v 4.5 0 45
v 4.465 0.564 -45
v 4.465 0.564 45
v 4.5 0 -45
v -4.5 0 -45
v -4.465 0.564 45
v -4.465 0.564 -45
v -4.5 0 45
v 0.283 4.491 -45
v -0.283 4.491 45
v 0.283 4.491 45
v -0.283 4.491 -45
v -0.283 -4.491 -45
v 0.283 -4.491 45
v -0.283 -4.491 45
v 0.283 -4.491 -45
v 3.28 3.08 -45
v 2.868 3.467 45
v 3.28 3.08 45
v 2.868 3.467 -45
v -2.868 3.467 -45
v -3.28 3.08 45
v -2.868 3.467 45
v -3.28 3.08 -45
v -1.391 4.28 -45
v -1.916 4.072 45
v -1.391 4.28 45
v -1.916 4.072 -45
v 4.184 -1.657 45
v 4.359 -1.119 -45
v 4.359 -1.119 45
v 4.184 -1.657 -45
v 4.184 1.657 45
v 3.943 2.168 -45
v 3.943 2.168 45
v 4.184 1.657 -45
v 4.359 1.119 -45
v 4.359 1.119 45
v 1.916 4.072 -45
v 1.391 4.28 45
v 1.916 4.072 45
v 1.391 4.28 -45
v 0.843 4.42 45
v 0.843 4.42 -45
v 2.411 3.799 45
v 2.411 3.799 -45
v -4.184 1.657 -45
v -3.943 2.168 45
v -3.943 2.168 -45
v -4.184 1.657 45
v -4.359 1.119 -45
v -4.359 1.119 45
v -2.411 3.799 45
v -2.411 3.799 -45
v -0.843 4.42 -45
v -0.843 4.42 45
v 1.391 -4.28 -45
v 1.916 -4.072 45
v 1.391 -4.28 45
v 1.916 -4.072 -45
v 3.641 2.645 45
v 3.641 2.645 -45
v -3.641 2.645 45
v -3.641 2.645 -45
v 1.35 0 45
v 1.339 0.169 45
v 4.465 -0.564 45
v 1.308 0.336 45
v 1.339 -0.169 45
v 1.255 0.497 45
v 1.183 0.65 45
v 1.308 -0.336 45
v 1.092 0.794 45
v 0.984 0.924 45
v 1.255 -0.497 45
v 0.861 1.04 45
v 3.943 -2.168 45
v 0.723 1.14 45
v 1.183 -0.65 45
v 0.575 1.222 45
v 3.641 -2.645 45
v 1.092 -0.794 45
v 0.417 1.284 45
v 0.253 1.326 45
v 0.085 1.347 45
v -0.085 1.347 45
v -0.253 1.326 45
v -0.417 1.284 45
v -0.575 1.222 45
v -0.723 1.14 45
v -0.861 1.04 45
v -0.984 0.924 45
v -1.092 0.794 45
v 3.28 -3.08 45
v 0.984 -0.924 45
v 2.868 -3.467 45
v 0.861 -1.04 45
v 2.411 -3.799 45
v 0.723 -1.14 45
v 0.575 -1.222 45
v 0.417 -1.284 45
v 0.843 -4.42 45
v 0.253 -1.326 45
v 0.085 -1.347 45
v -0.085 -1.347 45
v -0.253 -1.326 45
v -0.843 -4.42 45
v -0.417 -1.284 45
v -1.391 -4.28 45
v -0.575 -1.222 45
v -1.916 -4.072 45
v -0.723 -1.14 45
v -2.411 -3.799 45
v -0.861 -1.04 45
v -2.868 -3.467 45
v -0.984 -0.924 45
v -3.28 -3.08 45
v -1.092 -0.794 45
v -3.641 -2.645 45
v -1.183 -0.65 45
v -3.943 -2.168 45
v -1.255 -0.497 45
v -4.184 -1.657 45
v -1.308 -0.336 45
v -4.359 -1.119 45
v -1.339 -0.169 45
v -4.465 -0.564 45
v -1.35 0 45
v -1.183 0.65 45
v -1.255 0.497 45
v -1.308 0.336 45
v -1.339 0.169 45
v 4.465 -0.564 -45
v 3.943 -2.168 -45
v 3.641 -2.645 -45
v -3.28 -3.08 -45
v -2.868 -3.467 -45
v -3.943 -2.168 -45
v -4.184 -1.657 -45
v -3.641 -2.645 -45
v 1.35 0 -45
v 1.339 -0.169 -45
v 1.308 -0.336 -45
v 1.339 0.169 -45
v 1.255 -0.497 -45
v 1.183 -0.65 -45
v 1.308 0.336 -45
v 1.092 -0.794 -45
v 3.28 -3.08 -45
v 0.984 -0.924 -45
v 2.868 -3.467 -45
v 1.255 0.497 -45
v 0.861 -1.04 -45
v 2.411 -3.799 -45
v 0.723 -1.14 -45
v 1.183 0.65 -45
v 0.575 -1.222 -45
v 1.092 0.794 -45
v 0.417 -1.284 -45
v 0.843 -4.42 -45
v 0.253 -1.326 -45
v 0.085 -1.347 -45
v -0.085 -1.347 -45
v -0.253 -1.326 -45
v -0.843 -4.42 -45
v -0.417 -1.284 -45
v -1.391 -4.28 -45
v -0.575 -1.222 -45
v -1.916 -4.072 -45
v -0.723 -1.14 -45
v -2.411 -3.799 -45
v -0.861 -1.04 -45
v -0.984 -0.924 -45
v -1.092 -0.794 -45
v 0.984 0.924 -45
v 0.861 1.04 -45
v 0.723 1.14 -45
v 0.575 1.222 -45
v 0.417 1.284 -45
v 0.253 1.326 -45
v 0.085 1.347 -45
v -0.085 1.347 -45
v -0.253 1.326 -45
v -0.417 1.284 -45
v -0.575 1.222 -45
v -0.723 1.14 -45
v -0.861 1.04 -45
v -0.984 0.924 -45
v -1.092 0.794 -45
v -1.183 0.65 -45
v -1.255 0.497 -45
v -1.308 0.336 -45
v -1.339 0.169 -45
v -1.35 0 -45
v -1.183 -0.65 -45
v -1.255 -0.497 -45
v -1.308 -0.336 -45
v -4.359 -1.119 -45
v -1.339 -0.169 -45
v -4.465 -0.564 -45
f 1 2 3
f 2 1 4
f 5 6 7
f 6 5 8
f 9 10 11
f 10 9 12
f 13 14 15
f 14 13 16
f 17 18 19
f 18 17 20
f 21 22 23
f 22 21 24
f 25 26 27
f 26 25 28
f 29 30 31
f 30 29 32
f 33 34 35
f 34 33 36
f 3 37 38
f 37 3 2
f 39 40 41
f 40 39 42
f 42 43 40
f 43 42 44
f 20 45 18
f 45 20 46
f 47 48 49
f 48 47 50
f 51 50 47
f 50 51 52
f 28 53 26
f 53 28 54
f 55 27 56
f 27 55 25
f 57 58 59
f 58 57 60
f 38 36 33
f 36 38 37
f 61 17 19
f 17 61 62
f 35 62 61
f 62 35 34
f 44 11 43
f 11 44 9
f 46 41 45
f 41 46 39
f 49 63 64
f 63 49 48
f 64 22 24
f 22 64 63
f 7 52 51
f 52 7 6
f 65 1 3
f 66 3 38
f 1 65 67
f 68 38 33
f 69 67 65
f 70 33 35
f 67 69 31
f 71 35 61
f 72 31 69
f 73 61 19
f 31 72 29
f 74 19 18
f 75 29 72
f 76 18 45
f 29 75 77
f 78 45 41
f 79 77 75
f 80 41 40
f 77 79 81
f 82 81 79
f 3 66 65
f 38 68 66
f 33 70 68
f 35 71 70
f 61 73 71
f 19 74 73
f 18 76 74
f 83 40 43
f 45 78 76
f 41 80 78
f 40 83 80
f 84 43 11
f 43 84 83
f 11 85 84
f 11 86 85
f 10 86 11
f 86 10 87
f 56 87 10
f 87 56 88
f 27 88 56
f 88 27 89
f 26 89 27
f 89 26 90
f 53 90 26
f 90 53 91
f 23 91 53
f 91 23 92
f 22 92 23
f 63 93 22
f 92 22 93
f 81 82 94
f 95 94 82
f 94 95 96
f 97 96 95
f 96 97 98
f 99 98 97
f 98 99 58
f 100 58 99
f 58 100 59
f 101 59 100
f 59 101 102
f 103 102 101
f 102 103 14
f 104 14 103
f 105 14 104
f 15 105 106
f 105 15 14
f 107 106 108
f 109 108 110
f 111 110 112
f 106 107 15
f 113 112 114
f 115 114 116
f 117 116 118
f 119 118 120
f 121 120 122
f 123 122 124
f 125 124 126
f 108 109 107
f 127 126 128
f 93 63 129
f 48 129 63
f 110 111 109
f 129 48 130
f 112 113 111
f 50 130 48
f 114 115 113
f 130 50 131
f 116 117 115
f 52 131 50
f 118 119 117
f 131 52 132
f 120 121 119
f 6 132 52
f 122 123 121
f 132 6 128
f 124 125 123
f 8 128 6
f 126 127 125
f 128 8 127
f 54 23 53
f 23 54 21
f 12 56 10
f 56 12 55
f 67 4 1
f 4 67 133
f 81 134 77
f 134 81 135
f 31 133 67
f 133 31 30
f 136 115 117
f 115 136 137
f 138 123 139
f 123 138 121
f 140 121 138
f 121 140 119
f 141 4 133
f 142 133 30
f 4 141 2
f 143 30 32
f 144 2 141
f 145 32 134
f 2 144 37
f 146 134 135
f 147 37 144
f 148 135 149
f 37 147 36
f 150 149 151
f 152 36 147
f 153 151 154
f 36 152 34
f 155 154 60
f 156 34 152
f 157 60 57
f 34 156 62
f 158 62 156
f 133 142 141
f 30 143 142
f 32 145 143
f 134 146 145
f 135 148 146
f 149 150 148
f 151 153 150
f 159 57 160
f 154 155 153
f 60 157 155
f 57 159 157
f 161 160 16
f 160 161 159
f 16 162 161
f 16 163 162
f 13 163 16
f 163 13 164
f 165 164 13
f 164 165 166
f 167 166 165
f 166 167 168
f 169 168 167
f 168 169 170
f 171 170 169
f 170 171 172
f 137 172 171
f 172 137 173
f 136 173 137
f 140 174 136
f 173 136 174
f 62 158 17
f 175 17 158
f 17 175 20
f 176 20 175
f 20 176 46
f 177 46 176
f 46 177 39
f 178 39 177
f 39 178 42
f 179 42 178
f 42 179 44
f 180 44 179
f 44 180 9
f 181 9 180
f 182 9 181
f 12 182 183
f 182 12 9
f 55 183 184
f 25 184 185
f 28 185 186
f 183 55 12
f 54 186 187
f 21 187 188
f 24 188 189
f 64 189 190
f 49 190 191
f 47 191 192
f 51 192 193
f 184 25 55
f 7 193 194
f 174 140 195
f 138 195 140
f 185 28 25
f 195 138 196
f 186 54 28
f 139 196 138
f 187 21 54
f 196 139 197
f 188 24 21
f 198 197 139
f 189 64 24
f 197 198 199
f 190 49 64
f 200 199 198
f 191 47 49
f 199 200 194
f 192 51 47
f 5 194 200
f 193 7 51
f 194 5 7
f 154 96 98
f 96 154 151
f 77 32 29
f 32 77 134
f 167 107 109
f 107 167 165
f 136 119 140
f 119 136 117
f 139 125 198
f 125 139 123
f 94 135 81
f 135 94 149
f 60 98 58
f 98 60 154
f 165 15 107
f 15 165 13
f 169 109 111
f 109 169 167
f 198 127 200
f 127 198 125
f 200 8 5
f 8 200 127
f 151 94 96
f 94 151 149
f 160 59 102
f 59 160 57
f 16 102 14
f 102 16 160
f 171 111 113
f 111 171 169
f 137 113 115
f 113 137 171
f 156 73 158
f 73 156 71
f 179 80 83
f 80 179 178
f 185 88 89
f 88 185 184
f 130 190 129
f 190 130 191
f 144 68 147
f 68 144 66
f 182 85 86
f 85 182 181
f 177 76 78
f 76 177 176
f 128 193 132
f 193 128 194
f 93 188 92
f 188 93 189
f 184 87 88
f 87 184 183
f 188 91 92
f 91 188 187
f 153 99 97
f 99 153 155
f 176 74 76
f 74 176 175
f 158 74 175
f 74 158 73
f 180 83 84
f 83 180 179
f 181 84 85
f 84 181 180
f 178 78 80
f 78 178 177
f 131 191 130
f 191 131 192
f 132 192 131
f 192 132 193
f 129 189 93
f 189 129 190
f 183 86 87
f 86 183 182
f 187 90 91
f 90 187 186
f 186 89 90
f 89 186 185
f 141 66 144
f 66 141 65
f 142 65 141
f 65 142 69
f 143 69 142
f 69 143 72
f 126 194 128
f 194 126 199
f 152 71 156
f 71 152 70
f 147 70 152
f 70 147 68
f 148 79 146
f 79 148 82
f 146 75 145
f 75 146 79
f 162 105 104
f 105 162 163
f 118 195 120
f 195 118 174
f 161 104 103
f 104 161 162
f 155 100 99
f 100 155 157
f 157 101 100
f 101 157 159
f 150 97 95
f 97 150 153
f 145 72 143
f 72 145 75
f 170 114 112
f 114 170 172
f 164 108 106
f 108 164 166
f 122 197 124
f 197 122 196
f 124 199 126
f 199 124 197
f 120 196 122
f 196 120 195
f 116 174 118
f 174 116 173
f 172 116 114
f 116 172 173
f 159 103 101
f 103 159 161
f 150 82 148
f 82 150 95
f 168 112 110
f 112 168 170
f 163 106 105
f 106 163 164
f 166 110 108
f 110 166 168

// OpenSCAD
$fn = 50;


difference() {
	union() {
		translate(v = [0, 0, -45.0000000000]) {
			cylinder(h = 90, r = 4.5000000000);
		}
	}
	union() {
		translate(v = [0, 0, -100.0000000000]) {
			cylinder(h = 200, r = 1.3500000000);
		}
	}
}
